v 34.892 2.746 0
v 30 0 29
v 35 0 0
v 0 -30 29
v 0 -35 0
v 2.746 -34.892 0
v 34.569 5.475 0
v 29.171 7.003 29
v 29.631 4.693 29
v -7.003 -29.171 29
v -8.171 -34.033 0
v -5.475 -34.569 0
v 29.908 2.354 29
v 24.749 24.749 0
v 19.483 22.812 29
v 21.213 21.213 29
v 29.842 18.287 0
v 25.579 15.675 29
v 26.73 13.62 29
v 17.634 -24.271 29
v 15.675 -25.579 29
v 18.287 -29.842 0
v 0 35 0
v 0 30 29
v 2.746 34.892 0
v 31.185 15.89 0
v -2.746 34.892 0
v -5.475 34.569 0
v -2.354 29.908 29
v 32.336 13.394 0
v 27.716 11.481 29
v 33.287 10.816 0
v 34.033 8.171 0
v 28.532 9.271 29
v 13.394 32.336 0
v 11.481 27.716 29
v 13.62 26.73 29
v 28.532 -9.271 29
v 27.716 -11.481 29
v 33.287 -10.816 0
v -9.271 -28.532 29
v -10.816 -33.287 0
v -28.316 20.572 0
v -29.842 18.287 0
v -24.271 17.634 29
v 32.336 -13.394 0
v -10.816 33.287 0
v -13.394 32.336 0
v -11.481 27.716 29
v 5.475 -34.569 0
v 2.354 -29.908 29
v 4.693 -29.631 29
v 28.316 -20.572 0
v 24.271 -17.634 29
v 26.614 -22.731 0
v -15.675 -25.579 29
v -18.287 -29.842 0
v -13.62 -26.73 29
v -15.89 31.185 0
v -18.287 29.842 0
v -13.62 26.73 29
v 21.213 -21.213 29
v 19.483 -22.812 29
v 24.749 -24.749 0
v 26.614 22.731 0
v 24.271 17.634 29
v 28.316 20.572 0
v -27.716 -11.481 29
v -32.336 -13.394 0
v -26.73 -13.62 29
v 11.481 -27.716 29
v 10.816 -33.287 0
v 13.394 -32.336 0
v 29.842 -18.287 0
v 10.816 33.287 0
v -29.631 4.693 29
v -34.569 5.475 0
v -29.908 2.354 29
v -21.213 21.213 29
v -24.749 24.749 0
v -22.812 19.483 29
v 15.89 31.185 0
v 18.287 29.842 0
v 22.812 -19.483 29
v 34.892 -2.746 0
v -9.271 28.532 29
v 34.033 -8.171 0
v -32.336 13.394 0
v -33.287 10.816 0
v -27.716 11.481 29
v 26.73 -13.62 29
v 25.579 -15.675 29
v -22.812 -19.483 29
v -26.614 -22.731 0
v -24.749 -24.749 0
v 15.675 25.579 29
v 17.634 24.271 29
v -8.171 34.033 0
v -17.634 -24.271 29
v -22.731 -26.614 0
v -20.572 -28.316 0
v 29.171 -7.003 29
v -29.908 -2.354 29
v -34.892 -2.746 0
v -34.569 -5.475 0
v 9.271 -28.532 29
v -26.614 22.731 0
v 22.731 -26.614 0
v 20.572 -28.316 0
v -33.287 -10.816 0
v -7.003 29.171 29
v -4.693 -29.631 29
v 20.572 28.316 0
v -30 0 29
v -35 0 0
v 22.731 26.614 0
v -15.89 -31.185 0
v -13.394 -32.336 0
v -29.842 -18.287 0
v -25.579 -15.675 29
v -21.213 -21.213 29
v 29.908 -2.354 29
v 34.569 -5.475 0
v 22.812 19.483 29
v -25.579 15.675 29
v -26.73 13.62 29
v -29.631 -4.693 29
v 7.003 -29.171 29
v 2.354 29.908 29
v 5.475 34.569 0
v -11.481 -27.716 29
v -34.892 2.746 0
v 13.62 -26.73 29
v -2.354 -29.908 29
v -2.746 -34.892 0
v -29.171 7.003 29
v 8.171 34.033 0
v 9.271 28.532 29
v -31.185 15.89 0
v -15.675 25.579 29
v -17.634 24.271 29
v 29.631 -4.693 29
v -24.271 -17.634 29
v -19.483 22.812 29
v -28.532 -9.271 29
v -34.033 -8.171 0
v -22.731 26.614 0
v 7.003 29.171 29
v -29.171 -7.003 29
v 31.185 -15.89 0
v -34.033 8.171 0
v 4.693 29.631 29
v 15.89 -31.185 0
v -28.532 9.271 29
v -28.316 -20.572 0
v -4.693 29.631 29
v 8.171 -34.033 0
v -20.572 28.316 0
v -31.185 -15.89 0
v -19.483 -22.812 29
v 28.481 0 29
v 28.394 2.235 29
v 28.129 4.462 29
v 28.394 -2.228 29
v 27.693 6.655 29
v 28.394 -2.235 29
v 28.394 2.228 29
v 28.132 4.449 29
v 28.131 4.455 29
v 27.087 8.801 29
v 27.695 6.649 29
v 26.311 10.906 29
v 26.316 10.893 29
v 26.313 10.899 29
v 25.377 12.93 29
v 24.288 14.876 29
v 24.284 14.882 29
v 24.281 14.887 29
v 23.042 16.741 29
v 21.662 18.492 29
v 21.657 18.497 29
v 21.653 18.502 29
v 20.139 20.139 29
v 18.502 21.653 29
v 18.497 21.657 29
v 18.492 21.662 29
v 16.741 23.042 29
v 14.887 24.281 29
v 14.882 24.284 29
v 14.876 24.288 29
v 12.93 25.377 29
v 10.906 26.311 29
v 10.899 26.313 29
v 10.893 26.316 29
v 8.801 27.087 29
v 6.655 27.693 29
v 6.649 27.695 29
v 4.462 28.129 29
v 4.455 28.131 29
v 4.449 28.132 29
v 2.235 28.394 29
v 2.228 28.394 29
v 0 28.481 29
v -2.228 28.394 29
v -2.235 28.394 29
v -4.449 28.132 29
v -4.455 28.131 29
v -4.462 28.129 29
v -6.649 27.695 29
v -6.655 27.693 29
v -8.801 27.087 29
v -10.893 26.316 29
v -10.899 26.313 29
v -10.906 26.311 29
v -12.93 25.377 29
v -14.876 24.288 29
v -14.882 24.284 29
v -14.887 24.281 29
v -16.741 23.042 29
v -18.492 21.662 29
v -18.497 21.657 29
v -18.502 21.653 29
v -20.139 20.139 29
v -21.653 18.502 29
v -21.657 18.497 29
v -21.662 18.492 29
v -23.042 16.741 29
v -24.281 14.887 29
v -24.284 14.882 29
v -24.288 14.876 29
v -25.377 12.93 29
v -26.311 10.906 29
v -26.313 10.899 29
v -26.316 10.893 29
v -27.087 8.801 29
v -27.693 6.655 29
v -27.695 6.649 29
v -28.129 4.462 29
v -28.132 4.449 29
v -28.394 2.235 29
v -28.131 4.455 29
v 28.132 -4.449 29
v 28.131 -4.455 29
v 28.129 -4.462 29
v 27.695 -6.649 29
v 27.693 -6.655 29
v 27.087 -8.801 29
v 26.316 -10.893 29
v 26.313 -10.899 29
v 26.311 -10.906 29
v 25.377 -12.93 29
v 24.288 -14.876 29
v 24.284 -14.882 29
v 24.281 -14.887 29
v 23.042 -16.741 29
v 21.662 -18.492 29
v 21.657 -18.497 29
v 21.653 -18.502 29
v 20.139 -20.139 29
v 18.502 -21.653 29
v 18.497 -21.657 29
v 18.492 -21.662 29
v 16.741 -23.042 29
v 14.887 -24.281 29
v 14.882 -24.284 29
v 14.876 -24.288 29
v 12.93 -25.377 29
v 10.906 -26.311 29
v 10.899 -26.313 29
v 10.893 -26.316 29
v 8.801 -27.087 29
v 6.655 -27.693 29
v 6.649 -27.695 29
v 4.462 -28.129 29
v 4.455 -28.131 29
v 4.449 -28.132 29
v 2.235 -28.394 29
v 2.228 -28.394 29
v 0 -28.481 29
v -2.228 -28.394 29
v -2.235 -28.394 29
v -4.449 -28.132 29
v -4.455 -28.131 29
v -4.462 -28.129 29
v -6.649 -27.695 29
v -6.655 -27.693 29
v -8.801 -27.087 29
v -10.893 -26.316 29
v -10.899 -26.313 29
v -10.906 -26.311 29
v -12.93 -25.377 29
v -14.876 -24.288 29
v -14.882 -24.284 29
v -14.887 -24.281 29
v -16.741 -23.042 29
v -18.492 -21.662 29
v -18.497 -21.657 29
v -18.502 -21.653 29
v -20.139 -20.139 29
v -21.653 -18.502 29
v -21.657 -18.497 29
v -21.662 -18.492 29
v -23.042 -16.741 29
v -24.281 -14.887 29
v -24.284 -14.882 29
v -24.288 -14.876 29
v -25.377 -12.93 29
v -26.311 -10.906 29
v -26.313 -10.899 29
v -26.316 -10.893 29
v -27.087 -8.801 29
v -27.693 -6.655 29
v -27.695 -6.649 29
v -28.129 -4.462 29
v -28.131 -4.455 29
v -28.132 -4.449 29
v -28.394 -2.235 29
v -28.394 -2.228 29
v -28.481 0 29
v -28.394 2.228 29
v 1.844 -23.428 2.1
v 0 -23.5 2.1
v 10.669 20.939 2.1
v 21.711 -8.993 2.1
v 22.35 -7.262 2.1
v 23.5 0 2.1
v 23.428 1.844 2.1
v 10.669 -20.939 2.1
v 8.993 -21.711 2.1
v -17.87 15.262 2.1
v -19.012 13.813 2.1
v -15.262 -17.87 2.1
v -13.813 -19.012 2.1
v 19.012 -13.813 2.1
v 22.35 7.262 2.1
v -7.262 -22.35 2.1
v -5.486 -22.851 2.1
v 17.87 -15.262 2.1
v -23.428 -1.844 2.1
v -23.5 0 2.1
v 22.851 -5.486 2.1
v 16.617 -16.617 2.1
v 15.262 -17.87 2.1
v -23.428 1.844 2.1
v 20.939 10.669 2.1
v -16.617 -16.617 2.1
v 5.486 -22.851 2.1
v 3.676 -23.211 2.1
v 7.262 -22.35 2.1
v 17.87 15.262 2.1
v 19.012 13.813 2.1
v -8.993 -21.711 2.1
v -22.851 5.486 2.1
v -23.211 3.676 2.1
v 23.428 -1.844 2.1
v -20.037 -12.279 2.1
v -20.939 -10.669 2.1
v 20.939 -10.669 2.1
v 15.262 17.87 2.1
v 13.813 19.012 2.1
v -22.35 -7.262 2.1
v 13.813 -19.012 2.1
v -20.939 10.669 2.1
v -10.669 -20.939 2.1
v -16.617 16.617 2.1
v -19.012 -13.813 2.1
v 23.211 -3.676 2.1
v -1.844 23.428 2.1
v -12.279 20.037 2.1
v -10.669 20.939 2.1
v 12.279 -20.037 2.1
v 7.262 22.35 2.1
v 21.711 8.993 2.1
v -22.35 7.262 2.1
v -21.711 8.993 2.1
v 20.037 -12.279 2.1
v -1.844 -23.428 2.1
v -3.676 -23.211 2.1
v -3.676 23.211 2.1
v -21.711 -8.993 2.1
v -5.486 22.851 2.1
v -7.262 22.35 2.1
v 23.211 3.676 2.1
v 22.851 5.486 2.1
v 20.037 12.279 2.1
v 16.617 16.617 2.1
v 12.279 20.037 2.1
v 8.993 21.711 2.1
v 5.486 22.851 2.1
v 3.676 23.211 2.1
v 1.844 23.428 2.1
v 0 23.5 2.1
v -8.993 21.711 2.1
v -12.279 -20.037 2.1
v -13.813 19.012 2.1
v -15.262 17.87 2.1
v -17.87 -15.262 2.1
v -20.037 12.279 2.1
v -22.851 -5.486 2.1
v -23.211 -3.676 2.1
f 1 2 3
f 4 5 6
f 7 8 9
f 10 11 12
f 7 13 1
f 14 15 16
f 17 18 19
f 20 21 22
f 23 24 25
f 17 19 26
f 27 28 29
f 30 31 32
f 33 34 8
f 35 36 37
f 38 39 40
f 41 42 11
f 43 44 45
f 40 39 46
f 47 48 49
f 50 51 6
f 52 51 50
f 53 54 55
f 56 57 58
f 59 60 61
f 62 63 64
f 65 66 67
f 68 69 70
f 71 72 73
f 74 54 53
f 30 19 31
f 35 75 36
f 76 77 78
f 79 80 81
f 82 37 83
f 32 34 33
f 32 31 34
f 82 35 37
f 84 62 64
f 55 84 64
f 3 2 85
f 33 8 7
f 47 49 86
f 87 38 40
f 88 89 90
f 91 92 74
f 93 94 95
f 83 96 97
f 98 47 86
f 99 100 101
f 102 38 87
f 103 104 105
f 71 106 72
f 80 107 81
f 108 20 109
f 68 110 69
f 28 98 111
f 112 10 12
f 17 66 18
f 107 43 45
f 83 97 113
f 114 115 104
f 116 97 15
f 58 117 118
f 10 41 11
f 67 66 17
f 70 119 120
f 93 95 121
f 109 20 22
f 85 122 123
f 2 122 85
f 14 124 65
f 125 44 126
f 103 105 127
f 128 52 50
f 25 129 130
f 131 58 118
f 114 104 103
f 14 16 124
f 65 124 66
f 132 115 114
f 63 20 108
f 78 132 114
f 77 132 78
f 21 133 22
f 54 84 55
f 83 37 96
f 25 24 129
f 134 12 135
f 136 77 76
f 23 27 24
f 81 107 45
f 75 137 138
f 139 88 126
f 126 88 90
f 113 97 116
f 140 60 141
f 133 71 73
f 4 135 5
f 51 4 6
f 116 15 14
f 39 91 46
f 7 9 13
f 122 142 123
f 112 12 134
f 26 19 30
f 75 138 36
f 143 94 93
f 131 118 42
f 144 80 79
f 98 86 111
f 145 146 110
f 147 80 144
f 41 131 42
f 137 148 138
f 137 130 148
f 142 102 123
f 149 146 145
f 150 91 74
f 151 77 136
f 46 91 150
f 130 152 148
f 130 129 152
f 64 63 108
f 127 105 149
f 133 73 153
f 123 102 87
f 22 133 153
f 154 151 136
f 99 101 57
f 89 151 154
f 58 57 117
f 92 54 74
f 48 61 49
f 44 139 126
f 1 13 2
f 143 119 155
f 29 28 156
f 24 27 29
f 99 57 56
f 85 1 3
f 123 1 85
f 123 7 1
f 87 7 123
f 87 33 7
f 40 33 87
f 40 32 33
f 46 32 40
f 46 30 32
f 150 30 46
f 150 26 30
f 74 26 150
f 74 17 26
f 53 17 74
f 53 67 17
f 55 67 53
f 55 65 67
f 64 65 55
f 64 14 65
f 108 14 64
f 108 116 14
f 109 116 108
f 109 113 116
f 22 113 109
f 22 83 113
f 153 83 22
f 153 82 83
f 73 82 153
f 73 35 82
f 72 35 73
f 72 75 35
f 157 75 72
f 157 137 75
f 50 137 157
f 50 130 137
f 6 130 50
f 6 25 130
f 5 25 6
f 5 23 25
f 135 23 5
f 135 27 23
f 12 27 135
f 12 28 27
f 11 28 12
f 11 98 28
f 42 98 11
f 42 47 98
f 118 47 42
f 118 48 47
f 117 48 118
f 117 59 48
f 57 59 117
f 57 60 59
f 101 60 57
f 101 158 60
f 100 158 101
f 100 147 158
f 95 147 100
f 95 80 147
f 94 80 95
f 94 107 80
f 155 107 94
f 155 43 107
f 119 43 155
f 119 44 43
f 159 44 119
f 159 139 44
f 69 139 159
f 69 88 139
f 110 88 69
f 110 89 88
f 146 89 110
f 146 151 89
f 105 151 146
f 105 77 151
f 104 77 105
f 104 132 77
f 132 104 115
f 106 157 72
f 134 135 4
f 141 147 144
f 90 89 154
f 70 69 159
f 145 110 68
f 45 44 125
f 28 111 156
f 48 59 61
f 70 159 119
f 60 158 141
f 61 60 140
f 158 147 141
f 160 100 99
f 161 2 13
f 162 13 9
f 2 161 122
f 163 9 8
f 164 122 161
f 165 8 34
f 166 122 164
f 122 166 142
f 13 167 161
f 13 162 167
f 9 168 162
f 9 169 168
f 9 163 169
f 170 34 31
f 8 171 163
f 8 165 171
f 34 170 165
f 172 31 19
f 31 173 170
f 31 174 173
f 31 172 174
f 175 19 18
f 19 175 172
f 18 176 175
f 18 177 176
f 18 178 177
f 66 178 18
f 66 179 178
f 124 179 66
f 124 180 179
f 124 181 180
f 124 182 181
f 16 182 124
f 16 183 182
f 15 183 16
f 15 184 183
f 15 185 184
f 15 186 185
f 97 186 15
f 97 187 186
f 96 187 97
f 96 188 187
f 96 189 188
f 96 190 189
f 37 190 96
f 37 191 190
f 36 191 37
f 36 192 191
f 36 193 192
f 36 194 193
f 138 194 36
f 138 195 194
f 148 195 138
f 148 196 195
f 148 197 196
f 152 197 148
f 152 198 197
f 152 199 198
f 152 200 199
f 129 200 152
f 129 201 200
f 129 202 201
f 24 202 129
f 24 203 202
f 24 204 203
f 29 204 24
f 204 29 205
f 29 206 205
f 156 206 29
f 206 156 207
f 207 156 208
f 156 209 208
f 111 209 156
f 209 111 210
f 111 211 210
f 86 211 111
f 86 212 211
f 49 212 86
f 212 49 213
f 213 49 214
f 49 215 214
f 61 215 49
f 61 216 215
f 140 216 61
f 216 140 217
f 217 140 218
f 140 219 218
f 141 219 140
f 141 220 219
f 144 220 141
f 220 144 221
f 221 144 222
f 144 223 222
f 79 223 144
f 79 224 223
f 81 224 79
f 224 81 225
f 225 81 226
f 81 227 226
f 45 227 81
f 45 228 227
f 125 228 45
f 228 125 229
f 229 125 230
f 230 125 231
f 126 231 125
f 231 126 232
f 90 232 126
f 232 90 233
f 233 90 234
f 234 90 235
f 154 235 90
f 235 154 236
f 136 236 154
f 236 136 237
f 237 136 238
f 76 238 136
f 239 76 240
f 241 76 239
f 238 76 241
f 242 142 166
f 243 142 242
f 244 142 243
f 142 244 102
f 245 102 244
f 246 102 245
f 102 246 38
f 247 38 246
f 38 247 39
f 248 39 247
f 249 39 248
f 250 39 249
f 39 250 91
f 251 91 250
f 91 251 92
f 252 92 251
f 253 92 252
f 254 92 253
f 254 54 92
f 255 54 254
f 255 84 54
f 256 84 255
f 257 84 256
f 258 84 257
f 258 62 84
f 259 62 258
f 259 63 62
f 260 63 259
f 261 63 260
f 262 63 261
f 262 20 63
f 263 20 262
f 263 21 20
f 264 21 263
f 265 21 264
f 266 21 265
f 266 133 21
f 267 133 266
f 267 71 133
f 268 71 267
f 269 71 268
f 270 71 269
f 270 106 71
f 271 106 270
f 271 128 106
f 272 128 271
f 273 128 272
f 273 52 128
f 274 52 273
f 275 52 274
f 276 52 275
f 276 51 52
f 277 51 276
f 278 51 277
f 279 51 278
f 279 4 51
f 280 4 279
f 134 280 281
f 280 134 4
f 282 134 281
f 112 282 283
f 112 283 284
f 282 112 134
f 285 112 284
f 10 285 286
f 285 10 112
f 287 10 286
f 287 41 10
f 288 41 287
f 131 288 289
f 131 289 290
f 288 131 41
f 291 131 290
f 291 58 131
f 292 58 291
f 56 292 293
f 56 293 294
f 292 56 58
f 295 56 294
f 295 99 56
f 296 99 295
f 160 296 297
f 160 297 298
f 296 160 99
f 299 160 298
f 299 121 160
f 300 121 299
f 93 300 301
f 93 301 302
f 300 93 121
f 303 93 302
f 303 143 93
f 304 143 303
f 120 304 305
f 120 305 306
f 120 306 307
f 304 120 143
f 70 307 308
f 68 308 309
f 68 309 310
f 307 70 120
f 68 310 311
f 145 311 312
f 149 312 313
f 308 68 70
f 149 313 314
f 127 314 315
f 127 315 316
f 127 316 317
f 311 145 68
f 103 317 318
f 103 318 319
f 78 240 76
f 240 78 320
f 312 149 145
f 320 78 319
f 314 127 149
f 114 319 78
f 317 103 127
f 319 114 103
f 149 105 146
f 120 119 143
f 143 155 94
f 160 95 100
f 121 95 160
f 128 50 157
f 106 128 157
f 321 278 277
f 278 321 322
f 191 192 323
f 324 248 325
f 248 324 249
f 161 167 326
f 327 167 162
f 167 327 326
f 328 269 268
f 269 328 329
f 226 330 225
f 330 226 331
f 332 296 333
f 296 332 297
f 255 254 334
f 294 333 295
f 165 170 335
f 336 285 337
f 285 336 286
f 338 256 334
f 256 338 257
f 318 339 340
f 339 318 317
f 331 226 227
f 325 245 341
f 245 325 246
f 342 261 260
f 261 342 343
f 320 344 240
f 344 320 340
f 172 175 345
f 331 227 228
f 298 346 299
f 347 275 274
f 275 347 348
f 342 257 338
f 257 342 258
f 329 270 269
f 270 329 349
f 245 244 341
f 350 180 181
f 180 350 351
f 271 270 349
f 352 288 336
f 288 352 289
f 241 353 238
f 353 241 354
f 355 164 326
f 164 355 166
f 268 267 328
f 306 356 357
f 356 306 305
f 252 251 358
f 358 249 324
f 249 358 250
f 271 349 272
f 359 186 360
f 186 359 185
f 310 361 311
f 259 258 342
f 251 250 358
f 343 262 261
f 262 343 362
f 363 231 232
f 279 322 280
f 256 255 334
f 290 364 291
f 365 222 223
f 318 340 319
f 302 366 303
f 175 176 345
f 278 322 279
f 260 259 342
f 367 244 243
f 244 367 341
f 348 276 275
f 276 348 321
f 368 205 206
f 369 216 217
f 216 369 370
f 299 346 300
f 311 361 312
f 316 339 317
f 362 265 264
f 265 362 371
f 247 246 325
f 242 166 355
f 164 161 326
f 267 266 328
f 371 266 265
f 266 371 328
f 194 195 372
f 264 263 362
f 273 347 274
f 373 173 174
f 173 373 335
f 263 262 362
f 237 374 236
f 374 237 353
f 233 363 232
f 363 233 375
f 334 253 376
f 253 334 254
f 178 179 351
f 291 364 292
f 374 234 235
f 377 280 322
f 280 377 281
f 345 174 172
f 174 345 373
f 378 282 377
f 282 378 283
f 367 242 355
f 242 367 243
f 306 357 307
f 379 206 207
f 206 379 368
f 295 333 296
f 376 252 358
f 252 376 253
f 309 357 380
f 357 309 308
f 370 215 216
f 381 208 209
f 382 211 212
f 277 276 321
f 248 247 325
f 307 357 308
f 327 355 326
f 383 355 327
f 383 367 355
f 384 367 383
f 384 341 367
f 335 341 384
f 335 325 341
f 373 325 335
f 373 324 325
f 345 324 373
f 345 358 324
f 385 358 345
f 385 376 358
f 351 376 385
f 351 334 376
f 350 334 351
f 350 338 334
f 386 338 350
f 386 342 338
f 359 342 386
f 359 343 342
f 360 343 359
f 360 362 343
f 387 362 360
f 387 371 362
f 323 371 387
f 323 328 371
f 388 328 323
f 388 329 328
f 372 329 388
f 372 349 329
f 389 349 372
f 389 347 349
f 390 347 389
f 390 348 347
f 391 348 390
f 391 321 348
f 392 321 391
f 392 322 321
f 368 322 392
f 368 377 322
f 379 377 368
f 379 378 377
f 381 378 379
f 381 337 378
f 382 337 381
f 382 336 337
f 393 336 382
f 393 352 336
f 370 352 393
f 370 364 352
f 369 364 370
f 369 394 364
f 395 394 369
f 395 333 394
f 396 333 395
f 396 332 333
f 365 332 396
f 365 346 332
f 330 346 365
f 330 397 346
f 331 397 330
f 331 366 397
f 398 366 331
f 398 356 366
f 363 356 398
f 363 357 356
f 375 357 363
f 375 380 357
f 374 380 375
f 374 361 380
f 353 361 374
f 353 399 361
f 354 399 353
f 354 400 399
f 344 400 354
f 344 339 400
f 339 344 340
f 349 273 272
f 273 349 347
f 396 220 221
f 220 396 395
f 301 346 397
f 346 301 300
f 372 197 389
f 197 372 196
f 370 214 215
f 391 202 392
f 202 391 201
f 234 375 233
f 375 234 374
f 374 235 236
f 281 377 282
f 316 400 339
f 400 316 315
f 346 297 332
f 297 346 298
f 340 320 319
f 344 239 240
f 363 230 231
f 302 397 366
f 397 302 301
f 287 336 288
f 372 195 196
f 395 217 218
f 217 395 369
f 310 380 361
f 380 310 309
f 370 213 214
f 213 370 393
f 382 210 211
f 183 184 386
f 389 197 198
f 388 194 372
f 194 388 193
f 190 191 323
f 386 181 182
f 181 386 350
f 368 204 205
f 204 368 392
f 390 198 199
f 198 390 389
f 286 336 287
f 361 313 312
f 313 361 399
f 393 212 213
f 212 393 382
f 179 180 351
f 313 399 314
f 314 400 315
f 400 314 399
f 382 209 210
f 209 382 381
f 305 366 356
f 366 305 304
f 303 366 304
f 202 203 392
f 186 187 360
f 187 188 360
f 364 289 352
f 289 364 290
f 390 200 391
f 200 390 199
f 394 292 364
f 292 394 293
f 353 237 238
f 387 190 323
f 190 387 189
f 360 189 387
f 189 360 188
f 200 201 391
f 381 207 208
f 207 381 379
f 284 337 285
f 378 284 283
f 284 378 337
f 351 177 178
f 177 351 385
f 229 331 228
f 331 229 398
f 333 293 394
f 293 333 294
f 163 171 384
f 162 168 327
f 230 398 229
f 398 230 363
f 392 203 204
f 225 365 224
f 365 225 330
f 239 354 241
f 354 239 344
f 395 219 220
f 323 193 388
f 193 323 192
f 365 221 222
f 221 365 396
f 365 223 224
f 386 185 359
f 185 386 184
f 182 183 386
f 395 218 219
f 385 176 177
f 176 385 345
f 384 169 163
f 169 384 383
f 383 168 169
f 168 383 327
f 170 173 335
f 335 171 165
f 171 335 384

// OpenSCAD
$fn=80;

difference() {
   cylinder(d1=70,d2=60,h=29);
   translate([0,0,2.1]) cylinder(d1=47,d2=57,h=27);
}
